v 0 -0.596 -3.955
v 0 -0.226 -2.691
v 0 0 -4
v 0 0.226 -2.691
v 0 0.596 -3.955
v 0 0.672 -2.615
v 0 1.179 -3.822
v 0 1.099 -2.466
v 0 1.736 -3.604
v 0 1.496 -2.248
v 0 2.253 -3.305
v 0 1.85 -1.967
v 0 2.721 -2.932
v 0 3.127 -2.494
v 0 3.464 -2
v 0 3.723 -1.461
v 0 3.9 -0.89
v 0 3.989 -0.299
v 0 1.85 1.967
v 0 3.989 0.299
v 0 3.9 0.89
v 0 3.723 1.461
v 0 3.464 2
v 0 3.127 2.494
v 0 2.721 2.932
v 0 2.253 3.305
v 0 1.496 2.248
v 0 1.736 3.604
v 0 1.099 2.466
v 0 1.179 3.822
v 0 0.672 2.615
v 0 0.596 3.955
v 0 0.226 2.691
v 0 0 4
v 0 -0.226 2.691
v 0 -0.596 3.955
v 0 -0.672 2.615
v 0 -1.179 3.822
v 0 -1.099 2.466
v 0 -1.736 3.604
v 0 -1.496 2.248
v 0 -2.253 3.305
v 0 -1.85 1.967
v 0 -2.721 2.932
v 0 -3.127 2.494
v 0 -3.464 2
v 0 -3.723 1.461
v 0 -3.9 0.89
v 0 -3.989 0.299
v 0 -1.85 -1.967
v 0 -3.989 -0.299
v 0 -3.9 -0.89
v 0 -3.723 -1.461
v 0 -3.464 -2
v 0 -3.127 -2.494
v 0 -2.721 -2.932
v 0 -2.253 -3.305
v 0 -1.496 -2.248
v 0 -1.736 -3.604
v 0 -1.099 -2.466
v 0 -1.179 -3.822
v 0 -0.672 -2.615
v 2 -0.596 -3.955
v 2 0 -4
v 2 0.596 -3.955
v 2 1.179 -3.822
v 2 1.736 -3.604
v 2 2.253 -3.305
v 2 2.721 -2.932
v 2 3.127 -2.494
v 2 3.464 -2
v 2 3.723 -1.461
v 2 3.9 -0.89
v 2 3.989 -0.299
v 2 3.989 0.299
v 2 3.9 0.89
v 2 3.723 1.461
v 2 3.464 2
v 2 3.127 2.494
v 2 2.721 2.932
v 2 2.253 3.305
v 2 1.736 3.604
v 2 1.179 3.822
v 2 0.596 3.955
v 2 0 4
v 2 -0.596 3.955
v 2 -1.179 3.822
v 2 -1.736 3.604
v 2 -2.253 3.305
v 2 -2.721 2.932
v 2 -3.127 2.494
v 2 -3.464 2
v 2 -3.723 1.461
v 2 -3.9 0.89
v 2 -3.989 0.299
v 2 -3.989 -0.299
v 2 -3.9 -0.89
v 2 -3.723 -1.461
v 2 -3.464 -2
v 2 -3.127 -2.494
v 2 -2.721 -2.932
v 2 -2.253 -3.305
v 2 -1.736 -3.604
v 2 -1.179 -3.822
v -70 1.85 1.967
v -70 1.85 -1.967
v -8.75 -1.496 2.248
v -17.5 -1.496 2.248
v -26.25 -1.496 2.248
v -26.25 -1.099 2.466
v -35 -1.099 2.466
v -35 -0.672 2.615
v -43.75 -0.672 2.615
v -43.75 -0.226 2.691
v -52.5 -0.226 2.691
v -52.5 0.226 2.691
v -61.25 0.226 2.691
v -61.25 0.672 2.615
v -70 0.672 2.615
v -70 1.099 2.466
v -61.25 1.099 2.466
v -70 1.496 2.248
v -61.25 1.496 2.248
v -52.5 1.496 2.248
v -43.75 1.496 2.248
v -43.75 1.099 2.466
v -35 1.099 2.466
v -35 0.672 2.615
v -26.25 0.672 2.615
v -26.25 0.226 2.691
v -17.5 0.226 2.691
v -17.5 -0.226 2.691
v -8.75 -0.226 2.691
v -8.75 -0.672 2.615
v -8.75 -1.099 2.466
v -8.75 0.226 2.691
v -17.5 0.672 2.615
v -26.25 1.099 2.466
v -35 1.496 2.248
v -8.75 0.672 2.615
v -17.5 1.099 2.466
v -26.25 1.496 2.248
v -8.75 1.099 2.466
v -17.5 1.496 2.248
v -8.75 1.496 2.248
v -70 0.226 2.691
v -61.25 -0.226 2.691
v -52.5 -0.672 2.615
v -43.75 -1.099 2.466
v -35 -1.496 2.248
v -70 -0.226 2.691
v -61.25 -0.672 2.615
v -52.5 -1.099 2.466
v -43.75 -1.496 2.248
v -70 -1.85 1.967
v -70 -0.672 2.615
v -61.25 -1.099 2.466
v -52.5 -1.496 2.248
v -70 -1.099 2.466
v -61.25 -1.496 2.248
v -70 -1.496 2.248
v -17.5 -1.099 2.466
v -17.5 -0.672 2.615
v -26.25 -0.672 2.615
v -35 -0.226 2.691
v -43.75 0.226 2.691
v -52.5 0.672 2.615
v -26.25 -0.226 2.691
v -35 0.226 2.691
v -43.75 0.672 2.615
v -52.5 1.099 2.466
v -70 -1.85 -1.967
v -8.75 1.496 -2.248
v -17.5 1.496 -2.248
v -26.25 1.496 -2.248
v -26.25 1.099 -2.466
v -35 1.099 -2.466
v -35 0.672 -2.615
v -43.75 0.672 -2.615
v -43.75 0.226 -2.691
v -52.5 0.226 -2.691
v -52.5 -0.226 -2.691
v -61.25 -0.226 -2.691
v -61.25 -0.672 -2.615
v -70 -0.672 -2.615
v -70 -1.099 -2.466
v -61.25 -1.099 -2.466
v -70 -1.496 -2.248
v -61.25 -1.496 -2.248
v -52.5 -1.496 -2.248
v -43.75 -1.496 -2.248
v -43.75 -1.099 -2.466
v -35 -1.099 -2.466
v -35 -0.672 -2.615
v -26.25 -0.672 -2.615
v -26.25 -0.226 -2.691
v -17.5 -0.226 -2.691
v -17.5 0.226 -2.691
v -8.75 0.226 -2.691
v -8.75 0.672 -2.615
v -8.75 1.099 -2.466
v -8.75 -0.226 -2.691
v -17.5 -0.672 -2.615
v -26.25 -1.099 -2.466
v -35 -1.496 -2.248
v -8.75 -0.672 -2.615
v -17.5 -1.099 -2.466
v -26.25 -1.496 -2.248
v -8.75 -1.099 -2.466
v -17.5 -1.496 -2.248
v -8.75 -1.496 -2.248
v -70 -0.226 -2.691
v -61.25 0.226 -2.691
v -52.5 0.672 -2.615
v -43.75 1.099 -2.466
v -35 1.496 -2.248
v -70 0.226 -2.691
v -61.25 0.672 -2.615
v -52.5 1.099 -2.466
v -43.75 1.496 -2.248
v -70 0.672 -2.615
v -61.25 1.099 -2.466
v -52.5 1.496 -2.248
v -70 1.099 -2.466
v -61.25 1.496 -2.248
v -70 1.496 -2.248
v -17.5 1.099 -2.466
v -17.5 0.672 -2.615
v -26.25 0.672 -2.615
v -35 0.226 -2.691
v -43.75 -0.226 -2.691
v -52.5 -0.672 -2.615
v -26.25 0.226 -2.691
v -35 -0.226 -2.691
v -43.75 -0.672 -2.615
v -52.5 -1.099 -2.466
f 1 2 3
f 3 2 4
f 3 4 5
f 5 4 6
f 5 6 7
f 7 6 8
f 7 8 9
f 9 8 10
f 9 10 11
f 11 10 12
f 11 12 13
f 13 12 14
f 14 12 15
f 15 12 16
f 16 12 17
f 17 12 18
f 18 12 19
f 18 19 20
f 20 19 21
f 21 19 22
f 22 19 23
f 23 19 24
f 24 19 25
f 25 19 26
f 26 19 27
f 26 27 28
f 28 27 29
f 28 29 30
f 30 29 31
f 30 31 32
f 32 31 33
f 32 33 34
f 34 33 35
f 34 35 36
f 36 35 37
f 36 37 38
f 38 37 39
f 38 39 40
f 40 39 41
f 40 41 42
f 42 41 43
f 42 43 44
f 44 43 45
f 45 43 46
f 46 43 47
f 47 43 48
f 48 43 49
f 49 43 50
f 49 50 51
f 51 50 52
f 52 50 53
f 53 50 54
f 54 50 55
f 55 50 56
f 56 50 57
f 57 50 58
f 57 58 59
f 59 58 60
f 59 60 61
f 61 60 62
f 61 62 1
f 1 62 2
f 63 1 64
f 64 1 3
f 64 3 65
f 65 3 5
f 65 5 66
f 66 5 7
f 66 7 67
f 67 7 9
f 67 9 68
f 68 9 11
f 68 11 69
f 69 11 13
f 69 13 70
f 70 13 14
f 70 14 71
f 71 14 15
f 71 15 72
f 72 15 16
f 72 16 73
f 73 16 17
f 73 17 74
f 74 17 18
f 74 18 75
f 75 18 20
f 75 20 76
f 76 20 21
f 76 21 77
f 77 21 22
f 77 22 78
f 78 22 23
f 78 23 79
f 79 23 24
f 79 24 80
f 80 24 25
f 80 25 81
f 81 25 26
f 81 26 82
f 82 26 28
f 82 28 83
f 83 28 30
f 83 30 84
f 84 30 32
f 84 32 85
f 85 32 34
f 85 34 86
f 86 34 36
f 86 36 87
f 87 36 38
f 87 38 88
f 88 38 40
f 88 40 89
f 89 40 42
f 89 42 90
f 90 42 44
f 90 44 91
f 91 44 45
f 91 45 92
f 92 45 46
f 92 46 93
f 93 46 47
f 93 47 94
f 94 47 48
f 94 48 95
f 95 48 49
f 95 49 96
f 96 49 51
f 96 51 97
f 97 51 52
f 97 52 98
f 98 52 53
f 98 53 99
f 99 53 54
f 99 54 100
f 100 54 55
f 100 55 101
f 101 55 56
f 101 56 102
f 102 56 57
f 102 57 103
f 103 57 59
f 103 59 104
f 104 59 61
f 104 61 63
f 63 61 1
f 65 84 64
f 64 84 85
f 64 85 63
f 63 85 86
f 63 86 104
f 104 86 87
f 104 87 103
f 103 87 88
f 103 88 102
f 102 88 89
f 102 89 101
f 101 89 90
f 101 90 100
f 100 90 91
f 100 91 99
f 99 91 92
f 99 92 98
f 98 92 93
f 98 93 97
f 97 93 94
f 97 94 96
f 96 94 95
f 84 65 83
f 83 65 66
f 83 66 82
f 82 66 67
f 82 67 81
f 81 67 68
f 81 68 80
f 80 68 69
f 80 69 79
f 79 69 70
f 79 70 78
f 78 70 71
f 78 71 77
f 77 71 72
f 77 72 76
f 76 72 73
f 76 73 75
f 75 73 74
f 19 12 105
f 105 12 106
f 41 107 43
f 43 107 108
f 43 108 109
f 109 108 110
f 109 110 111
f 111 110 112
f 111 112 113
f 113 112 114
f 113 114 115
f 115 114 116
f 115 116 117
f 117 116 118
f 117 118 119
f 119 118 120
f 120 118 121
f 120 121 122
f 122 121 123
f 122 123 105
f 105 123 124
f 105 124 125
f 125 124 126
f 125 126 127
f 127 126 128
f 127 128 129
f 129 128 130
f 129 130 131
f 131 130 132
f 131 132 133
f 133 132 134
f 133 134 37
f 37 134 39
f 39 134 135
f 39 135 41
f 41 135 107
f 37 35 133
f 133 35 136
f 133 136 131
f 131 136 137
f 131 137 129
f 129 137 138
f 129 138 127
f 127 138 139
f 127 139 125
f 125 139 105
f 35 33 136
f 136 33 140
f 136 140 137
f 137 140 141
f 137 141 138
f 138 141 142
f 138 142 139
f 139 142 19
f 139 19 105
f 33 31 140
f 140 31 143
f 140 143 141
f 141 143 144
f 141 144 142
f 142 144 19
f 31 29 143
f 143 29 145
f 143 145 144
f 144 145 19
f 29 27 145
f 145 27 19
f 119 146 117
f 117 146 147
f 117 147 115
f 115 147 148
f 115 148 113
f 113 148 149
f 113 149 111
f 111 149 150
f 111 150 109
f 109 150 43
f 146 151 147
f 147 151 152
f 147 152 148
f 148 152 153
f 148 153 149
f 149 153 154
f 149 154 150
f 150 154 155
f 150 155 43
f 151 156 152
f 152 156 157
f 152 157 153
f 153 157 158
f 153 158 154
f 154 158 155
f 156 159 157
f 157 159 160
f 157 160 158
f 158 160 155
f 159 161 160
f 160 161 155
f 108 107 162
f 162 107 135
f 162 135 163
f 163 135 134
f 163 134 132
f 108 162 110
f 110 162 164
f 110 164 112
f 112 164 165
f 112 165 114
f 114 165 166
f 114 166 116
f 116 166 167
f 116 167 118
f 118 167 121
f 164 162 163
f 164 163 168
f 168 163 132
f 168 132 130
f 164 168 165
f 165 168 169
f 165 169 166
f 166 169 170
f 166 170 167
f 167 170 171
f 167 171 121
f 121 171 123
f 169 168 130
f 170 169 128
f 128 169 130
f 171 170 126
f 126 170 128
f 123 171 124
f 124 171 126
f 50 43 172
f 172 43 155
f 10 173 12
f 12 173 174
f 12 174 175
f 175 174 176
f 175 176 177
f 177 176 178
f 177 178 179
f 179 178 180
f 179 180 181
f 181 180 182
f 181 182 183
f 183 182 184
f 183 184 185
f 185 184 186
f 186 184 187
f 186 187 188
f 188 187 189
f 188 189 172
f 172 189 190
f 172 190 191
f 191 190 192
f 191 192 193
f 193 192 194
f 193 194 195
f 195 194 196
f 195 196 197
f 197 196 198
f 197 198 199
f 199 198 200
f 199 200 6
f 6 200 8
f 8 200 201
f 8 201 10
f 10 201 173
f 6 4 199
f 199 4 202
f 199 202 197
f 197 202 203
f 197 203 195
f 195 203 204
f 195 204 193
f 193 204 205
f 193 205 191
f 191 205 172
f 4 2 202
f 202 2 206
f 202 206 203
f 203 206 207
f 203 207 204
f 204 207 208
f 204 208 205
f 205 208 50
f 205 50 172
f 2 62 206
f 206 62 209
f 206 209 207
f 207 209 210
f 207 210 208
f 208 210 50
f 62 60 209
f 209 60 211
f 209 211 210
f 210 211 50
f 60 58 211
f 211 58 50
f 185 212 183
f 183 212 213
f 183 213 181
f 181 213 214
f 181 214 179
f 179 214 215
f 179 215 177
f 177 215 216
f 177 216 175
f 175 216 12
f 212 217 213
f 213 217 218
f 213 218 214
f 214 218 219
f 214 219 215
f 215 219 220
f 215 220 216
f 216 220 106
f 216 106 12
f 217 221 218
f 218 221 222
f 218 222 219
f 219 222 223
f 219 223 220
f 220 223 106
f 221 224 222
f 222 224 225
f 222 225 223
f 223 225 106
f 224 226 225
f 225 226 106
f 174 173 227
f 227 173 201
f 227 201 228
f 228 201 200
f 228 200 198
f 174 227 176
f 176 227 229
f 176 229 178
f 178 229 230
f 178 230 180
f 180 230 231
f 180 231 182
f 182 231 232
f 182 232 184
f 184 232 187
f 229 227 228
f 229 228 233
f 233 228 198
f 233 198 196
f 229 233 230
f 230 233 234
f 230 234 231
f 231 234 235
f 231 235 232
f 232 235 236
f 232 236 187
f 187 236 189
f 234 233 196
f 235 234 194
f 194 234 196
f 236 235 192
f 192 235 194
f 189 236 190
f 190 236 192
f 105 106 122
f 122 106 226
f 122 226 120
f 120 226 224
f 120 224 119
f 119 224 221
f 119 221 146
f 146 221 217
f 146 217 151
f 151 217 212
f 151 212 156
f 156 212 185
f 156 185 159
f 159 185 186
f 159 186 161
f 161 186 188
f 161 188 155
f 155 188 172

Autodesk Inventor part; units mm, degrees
ref_plane "YZ Plane" through (0, 0, 0) normal (1, 0, 0) x (0, 1, 0)
ref_plane "XZ Plane" through (0, 0, 0) normal (0, 1, 0) x (-1, 0, 0)
ref_plane "XY Plane" through (0, 0, 0) normal (0, 0, 1) x (1, 0, 0)
sketch "Sketch1" plane through (0, 0, 0) normal (1, 0, 0) x (0, 1, 0)
  circle A0 centre (0, 0) radius 2.7
  line L0 (-1.85, -2.7) -> (1.85, -2.7)
  line L1 (1.85, -2.7) -> (1.85, 2.7)
  line L2 (1.85, 2.7) -> (-1.85, 2.7)
  line L3 (-1.85, 2.7) -> (-1.85, -2.7)
  line L4 (-1.85, -2.7) -> (1.85, 2.7) construction
  line L5 (1.85, -2.7) -> (-1.85, 2.7) construction
  point P0 (-1.85, 1.9666)
  point P1 (-1.85, -1.9666)
  point P2 (1.85, -1.9666)
  point P3 (1.85, 1.9666)
  dimension "d0" = 5.4
  dimension "d1" = 3.7
  dimension "d2" = 5.4
extrude "Extrusion1" add sketch "Sketch1" against normal blind 70 contours L1 A0 L3
sketch "Sketch2" plane through (0, 0, 0) normal (1, 0, 0) x (0, 0, -1)
  circle A0 centre (0, 0) radius 4
extrude "Extrusion2" add sketch "Sketch2" along normal blind 2
properties part number "Axle_3DPrint"
